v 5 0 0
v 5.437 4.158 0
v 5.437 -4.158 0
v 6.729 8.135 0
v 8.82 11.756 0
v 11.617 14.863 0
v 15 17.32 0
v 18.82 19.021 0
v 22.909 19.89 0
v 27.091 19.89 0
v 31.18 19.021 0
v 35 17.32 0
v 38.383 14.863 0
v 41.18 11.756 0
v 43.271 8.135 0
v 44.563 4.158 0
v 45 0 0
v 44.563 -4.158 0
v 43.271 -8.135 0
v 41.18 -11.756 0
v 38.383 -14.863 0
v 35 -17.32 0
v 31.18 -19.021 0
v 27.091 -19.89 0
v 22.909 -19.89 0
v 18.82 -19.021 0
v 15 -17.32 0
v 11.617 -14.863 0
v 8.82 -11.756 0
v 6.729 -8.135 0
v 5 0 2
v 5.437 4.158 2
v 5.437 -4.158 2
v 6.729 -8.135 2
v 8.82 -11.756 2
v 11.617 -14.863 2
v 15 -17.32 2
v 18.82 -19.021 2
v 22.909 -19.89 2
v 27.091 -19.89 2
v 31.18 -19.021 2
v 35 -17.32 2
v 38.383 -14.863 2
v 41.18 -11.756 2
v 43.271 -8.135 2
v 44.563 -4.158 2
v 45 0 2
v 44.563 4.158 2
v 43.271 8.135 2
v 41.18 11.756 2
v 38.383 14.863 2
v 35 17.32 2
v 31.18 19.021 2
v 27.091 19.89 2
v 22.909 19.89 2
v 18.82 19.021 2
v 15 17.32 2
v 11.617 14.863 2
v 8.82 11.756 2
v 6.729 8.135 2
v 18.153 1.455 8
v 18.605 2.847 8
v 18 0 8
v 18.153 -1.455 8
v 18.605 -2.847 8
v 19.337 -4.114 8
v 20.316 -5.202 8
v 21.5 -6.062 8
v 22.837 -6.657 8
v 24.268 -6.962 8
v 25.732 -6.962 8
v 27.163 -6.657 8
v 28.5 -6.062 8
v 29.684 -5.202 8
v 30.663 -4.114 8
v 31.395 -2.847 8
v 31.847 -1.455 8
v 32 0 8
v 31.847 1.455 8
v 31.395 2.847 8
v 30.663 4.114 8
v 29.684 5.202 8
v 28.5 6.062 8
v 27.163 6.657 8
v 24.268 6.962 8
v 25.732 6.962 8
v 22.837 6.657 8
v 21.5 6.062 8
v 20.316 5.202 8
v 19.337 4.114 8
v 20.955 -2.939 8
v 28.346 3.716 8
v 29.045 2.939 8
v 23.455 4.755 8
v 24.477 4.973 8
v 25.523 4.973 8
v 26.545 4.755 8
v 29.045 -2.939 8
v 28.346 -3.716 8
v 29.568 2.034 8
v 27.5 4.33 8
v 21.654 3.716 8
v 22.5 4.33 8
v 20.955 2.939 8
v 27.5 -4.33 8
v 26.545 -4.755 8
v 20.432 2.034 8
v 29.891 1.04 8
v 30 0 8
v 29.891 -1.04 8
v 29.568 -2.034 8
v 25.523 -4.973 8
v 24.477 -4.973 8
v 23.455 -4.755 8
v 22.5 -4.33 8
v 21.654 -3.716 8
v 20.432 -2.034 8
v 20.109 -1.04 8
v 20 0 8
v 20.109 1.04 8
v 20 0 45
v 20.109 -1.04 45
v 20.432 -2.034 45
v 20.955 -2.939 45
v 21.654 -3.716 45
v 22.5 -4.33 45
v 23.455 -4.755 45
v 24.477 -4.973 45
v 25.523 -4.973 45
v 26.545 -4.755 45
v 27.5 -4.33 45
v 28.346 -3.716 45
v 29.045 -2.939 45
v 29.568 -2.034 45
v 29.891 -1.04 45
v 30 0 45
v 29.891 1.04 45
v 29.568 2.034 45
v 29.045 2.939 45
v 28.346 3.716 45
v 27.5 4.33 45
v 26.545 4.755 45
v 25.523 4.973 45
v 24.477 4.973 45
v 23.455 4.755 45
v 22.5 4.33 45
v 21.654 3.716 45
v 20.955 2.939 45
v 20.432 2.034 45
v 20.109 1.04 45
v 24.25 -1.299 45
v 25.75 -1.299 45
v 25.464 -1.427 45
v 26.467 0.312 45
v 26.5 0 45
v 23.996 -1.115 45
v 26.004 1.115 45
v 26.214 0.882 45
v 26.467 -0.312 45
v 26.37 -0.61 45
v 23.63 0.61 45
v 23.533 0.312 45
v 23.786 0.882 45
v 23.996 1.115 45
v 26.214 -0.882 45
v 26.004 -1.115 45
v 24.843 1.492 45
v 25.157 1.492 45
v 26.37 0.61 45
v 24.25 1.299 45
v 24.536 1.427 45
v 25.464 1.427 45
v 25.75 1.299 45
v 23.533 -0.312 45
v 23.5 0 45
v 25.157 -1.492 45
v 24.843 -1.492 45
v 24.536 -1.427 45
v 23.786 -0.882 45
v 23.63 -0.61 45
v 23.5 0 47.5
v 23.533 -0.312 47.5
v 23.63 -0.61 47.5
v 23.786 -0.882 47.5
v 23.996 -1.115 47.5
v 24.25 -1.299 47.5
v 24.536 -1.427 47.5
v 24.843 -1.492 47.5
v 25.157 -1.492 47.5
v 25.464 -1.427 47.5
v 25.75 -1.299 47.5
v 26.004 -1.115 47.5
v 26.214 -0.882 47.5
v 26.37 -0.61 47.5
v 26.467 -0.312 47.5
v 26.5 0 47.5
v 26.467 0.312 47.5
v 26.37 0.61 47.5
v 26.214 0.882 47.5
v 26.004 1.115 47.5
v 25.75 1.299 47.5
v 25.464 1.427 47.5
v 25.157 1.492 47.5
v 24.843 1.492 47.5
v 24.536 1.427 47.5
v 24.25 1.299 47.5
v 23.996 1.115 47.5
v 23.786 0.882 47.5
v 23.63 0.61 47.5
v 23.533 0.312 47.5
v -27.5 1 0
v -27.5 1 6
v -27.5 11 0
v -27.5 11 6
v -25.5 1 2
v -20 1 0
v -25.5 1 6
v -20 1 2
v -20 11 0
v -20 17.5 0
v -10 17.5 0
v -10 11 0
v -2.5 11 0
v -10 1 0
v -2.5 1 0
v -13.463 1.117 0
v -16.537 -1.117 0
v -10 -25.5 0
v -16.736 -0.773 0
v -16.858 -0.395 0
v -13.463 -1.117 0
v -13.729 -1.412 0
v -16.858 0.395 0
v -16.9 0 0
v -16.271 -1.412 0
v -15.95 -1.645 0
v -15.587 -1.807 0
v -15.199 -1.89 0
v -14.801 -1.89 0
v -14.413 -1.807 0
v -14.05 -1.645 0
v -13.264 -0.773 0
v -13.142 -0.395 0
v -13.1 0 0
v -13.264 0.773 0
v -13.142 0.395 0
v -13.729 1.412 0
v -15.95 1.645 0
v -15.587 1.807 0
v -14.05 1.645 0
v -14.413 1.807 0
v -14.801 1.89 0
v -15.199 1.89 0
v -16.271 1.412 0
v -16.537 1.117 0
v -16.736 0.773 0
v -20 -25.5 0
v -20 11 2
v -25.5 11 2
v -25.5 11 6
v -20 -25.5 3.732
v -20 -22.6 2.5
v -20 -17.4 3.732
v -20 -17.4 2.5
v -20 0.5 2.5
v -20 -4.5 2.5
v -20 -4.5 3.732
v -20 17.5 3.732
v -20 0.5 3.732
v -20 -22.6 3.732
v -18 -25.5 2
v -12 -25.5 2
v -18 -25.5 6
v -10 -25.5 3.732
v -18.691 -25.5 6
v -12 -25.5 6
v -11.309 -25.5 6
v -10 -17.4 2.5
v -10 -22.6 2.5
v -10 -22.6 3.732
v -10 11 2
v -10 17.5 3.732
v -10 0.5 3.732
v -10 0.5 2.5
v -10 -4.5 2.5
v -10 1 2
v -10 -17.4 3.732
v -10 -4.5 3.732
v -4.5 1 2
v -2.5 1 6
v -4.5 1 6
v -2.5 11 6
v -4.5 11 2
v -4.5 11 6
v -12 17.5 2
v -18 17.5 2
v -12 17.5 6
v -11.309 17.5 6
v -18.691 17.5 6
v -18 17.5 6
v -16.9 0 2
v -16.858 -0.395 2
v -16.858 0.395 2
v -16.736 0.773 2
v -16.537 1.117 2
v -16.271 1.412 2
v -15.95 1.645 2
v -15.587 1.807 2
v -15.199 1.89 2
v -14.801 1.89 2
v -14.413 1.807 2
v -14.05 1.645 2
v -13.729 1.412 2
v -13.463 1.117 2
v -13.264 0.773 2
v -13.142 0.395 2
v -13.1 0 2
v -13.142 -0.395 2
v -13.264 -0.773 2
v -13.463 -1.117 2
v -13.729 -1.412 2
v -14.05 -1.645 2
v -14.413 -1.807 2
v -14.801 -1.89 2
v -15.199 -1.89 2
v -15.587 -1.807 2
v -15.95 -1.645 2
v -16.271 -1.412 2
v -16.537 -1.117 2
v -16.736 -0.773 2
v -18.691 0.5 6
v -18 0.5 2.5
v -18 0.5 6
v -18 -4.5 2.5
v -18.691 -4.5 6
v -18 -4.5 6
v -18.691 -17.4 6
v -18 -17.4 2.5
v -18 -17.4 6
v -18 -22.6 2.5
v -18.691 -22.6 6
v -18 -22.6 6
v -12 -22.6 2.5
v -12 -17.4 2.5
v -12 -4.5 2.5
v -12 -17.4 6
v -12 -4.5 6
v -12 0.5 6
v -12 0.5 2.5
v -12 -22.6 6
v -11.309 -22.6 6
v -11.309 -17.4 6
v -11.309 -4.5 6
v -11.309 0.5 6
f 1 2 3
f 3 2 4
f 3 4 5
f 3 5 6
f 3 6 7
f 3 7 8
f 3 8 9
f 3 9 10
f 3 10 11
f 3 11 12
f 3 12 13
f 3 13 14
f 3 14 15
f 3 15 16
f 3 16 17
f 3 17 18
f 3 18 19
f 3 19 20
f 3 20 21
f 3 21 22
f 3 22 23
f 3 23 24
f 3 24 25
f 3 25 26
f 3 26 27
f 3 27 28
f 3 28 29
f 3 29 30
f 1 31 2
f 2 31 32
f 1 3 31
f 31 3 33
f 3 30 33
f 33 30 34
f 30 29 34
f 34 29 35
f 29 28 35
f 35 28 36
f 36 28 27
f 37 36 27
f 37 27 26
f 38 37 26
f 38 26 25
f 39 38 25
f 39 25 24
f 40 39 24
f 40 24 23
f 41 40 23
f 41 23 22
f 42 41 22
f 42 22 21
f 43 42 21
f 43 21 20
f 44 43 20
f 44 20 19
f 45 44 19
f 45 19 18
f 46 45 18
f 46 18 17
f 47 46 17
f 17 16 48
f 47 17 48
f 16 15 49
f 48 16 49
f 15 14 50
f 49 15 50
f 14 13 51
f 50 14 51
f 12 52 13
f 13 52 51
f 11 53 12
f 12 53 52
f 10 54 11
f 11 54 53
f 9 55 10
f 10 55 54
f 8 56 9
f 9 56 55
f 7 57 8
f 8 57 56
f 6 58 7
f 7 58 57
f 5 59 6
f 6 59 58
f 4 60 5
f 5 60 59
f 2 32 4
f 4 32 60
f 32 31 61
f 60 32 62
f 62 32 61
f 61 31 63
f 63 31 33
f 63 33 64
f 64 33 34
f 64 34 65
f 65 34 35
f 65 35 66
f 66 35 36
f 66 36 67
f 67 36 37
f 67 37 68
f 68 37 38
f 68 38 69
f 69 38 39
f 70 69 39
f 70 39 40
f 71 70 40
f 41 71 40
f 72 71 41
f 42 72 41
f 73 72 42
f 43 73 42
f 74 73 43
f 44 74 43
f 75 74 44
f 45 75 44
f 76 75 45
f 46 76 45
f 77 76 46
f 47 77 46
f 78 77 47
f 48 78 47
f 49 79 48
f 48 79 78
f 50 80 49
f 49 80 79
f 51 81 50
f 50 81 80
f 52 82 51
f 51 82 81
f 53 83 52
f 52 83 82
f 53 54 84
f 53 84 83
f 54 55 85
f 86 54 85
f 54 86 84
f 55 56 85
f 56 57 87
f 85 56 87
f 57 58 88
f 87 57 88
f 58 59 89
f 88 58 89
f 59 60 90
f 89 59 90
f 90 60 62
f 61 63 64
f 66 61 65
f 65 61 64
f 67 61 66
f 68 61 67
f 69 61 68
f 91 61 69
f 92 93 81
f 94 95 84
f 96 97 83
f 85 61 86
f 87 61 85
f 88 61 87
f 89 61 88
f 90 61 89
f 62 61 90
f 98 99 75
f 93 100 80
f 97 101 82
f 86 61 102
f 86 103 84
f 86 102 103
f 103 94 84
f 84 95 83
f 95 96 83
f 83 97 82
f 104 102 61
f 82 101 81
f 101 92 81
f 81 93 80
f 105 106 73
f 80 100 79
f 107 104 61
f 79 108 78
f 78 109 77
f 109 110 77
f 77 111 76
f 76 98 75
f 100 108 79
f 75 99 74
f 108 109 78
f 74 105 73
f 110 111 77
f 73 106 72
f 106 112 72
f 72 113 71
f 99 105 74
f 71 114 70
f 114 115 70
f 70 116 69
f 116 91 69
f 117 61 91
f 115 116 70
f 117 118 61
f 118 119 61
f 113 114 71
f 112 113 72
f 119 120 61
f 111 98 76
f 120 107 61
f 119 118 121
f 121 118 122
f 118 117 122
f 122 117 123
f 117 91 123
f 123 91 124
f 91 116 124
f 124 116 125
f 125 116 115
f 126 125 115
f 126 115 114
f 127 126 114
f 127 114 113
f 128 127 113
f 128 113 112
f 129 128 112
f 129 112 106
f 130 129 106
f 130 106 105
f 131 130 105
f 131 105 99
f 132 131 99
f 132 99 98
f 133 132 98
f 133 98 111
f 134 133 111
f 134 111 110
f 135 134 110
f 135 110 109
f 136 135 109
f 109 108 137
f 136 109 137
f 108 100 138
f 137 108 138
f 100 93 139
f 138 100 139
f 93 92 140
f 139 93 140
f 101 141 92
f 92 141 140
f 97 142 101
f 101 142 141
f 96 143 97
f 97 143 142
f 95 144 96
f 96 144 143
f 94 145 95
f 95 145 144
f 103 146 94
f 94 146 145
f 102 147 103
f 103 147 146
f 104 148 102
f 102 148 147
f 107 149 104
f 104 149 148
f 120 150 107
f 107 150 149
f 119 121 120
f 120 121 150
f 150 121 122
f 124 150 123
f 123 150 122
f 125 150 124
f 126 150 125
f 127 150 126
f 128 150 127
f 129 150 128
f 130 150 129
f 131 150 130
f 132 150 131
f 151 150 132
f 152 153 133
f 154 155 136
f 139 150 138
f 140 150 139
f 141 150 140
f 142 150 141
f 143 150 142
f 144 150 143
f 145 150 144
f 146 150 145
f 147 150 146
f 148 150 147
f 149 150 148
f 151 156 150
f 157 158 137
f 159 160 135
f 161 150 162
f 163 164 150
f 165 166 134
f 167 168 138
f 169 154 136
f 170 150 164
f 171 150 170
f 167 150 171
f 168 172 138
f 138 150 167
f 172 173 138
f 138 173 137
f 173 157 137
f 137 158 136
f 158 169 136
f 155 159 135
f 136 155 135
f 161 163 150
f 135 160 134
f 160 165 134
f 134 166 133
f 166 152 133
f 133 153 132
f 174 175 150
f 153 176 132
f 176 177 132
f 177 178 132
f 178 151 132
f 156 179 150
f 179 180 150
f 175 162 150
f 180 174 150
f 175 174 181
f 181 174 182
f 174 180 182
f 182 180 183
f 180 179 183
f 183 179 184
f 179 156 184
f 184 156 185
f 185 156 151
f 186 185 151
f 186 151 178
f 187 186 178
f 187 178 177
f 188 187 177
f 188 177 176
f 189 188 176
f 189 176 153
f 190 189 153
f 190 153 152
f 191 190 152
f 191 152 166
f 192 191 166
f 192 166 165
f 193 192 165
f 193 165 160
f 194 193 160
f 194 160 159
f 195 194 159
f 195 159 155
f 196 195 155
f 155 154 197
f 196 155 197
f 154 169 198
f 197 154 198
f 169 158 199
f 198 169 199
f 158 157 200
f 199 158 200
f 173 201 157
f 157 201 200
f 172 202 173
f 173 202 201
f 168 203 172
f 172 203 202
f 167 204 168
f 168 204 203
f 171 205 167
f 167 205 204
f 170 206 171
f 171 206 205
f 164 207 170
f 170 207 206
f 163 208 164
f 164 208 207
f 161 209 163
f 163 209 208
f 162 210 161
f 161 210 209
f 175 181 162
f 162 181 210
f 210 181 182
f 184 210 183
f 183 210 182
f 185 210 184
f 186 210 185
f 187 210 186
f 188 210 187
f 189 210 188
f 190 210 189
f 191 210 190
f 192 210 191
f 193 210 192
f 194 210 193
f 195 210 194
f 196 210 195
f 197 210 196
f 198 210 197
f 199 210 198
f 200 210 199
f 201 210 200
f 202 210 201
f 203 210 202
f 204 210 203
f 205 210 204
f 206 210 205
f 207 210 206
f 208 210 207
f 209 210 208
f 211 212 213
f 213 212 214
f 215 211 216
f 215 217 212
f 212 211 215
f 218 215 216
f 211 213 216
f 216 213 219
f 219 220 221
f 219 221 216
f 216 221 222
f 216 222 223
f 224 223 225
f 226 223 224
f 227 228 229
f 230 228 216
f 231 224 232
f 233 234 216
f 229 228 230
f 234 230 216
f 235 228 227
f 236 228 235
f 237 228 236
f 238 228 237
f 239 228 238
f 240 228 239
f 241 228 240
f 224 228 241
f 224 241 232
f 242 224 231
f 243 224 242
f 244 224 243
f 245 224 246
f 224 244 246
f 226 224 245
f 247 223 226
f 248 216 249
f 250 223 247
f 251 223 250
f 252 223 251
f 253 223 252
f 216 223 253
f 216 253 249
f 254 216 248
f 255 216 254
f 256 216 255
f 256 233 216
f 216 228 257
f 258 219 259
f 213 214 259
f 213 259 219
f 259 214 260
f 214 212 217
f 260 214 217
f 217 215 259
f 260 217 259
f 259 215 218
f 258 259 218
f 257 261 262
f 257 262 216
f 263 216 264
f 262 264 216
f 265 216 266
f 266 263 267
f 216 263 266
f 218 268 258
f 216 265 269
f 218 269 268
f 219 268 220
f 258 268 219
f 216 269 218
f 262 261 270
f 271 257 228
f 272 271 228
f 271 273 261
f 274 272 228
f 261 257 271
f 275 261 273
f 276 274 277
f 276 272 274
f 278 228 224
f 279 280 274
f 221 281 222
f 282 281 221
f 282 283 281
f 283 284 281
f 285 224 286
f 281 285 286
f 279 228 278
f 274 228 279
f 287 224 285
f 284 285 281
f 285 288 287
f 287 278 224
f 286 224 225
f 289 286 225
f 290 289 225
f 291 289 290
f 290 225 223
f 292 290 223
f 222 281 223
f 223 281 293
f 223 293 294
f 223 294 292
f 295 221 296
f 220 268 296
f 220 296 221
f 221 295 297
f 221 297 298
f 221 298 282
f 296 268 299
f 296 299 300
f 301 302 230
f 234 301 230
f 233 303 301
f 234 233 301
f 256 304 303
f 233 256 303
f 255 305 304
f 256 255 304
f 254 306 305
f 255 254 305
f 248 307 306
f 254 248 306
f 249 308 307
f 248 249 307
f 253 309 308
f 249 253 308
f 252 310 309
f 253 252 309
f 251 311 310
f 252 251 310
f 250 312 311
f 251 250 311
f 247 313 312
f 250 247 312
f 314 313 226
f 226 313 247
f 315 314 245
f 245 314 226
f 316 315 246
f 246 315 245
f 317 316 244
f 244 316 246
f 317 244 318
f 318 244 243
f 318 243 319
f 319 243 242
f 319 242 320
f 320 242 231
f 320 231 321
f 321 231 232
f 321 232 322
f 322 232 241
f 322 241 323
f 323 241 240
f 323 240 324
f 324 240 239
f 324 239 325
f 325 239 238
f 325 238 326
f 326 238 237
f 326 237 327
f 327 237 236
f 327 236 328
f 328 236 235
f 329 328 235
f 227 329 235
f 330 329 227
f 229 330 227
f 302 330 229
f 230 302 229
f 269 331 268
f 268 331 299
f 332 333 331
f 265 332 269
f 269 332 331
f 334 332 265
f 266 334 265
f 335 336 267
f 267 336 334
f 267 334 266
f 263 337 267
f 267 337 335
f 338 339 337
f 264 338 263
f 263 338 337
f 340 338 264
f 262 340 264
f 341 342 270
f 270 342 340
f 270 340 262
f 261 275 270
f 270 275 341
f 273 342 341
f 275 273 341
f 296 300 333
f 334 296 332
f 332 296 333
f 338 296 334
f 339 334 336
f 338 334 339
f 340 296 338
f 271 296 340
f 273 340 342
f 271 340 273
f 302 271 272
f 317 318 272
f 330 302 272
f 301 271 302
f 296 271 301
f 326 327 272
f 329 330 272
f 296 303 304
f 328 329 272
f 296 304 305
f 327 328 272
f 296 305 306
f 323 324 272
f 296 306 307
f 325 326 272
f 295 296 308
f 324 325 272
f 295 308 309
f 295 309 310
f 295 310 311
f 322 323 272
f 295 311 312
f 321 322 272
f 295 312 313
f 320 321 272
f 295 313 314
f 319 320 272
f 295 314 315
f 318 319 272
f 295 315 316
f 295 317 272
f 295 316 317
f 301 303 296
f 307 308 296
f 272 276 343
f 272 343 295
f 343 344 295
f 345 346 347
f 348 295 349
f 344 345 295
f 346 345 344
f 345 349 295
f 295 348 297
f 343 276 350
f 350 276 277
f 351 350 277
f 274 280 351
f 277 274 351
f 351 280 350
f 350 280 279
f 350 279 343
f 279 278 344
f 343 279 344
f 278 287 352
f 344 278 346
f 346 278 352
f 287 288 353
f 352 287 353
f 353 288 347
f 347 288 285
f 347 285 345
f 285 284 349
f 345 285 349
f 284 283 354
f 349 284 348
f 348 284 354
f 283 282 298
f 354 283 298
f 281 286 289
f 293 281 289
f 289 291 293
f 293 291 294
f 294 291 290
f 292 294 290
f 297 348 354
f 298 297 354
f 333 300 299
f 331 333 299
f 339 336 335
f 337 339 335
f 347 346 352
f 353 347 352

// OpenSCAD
$fn=30;

top_len=43;
top_width=25;
top_thick=2;
pin_rad=1.5;

translate([25,0,0]) union() {
    base();
    shaft();
}
translate([-15,0,0]) top();

module base() {
    base_thick=2;
    base_rad=20;
    union() {
        translate([0,0,base_thick/2]) cylinder(h=base_thick, r=base_rad, center=true);
        translate([0,0,5]) cylinder(h=6, r1=base_rad, r2=7, center=true);
    }
}

module shaft() {
    pole_height=45;
    pole_rad=5;
    union() {
        // pole
        translate([0,0,pole_height/2]) cylinder(h=pole_height, r=pole_rad, center=true);
        // pin
        translate([0,0,pole_height]) translate([0,0,1]) cylinder(h=top_thick+1,r=pin_rad,center=true);
    }
}

module top() {
    difference() {
        union() {
            translate([0,-4,1]) cube([10,top_len,2], center=true);
            translate([0,6,1]) cube([top_width,10,2], center=true);
            translate([top_width/2-1,6,4]) cube([2,10,4], center=true);
            translate([-top_width/2+1,6,4]) cube([2,10,4], center=true);
            rail();
            mirror([1,0,0]) rail();
        }
        cylinder( h=10, r=pin_rad+0.4, center=true );
        translate([0,-2,5]) cube([top_width,5,5], center=true);
        translate([0,-20,5]) cube([top_width,5.2,5], center=true);
    }
}

module rail() {
    difference() {
        translate([4,-4,4]) cube([2,top_len,4], center=true);
        translate([6,-4,6]) rotate([0,60,0]) cube([4,top_len+2,4], center=true);
    }
}
